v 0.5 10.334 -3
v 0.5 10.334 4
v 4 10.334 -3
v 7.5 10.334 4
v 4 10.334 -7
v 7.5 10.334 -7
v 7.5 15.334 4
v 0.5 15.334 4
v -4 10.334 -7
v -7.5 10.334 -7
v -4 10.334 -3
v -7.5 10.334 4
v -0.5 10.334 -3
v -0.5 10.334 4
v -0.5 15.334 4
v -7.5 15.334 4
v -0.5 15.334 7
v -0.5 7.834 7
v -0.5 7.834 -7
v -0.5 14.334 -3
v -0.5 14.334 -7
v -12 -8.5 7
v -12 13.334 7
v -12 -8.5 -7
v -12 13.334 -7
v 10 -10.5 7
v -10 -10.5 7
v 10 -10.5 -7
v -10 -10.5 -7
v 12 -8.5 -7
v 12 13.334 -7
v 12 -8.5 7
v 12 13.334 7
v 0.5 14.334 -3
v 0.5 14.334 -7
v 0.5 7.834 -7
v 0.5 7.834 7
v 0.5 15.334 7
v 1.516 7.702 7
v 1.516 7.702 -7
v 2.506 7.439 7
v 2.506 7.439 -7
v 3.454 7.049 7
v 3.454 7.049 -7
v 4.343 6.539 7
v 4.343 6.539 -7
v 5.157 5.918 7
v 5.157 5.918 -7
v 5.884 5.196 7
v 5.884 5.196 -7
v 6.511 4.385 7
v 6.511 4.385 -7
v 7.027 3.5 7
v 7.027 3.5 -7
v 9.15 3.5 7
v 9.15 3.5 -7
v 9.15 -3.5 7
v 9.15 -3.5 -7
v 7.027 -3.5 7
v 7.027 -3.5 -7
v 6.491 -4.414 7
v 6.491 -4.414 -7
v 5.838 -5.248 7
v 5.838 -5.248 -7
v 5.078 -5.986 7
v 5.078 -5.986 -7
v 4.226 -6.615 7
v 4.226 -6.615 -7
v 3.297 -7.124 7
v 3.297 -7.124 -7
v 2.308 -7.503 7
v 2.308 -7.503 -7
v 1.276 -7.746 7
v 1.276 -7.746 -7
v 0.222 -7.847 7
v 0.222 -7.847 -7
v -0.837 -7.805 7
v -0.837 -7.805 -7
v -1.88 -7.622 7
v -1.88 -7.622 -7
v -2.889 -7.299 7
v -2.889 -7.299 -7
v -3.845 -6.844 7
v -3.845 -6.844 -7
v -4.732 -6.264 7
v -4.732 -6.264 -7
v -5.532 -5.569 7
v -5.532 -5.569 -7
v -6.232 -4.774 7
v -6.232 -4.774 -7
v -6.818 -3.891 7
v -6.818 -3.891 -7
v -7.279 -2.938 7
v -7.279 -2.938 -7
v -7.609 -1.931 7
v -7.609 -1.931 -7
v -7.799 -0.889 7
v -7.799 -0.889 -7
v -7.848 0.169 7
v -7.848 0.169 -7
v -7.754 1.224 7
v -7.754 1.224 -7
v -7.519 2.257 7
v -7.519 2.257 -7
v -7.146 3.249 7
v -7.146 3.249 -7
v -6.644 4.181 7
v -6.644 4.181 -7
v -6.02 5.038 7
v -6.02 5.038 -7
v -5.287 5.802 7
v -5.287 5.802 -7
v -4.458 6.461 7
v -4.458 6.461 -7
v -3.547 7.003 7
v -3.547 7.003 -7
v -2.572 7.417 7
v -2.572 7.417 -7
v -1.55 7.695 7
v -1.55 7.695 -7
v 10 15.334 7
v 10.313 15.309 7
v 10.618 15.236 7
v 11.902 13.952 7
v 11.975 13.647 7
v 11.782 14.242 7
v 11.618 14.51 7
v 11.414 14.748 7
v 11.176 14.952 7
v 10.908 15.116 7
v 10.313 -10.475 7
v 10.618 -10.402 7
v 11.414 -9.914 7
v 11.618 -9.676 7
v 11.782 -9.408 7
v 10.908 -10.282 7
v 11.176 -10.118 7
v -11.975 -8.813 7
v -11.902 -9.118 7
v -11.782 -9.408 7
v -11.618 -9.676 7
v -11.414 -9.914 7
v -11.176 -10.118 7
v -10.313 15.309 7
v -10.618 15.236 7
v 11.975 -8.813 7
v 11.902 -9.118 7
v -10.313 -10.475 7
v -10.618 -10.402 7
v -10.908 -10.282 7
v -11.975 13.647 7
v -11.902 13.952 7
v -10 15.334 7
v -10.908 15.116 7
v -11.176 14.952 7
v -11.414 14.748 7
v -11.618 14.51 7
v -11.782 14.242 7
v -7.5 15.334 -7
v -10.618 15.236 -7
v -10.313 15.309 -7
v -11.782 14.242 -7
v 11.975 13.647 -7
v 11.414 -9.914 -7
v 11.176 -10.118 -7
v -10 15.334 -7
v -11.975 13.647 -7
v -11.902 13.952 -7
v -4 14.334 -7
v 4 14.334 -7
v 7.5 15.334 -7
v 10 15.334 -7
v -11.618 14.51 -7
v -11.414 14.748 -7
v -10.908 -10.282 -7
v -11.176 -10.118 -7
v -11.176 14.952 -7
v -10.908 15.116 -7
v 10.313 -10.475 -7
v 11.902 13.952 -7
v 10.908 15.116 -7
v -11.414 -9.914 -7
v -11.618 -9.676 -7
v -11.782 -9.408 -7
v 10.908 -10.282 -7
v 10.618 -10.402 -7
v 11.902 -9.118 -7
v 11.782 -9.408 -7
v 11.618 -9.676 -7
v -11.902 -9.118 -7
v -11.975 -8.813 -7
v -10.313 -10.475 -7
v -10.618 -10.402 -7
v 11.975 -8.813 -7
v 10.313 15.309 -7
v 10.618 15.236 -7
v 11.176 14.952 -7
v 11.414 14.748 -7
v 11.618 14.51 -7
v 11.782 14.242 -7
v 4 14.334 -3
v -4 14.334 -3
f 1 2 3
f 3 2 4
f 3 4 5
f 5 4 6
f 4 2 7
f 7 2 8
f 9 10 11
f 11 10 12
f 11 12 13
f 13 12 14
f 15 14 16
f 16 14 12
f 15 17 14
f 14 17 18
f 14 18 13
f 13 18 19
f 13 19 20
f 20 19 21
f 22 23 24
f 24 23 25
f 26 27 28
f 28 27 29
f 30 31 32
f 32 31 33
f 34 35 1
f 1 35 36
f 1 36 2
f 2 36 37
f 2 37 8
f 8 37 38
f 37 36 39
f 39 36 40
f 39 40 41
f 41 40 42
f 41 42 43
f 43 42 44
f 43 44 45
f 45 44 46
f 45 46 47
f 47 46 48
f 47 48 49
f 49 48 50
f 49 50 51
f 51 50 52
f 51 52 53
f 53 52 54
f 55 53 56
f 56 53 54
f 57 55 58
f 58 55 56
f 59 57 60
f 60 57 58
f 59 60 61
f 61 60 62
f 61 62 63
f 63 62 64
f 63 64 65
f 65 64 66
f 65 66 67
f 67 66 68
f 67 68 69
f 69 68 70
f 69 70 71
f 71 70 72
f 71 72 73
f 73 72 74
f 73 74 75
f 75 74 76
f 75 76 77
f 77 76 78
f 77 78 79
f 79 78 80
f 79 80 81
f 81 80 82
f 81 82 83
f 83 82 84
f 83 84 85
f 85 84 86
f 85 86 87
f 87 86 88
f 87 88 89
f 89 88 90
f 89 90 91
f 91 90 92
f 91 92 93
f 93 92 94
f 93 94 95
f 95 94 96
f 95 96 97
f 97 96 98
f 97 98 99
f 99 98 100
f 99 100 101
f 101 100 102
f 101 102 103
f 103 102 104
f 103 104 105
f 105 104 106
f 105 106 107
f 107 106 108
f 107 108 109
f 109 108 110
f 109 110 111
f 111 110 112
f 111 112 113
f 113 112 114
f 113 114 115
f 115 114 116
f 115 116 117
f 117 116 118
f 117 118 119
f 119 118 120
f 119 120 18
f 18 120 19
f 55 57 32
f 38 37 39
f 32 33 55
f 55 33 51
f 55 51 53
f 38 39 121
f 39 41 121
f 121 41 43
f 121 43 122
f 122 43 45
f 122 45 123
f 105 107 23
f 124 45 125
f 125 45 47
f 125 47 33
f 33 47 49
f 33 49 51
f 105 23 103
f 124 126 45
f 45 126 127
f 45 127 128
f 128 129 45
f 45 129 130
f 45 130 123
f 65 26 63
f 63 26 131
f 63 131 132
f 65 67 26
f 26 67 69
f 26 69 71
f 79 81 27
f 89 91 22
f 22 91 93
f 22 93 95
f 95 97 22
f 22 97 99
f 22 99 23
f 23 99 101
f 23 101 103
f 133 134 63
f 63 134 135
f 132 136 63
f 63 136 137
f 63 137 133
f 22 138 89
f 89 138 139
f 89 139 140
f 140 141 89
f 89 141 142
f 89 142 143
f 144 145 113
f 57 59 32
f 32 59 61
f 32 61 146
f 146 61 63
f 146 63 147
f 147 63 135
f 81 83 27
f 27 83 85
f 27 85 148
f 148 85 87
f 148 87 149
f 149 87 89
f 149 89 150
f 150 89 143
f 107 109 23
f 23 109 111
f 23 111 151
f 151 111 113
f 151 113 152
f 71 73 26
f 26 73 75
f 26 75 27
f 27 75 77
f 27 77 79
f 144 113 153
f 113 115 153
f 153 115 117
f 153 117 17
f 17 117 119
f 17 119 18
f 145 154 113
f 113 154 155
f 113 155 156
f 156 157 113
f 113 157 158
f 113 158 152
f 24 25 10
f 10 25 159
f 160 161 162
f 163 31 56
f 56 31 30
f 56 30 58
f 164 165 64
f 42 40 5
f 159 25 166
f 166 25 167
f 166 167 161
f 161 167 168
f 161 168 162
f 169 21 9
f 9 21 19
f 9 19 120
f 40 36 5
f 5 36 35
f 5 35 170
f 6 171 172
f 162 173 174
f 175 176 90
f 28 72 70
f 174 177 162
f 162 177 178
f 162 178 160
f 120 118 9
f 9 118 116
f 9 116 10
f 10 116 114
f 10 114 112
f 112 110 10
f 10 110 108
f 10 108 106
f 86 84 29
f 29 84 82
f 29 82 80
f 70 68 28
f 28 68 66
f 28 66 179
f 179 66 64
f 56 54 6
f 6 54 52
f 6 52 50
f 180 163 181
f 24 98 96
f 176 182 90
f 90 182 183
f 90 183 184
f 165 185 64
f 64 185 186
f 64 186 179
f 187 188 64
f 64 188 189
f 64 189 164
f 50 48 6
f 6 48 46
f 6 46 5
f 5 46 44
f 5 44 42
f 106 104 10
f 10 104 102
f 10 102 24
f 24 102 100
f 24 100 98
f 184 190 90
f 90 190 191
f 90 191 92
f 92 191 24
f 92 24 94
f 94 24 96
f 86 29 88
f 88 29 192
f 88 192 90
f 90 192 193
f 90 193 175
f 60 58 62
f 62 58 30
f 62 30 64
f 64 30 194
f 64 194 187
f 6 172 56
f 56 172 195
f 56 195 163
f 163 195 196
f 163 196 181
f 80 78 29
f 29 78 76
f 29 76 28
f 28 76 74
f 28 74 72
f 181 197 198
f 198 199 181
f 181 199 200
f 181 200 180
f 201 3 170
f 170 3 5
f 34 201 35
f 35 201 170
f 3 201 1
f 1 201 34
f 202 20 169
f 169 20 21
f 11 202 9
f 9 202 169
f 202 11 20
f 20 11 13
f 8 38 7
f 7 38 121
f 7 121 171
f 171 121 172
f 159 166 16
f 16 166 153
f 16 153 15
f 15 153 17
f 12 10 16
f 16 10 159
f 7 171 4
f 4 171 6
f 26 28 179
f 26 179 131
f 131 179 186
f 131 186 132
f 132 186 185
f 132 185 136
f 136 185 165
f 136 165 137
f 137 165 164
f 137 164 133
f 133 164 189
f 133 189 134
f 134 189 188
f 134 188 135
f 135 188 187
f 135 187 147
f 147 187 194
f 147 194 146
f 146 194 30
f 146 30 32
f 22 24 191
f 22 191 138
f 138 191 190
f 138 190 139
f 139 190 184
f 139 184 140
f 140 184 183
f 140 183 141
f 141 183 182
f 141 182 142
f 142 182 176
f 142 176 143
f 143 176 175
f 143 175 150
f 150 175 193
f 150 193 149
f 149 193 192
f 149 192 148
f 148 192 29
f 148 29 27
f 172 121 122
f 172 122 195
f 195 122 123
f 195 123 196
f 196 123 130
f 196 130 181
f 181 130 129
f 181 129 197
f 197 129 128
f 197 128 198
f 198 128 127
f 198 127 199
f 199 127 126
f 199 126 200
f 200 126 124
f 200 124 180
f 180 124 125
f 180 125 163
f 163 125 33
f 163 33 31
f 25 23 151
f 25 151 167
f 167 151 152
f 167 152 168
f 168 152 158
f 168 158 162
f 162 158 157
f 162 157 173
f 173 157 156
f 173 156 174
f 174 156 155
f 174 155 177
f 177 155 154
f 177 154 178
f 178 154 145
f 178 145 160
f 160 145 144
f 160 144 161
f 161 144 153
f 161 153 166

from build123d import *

# Parameters (mm, degrees)
SALIENTE_EXTRUIR1_DEPTH = 7
CROQUIS2_W              = 3.5
CROQUIS2_H              = 4
SALIENTE_EXTRUIR2_DEPTH = 4
CROQUIS3_W              = 11.5
CROQUIS3_H              = 5
SALIENTE_EXTRUIR3_DEPTH = 3
SALIENTE_EXTRUIR4_START = -7
CROQUIS4_W              = 4.5
CROQUIS4_H              = 5
SALIENTE_EXTRUIR4_DEPTH = 11
REDONDEO3_R             = 2


with BuildPart() as part:
    # Croquis1 → Saliente-Extruir1 (new, symmetric)
    with BuildSketch(Plane.XY):
        with BuildLine():
            Line((-12, -10.5), (12, -10.5))
            Line((12, -10.5), (12, 10.33406025))
            Line((12, 10.33406025), (0.5, 10.33406025))
            Line((0.5, 10.33406025), (0.5, 7.83406025))
            ThreePointArc((0.5, 7.83406025), (4.342612549, 6.539435468), (7.026556767, 3.5))
            Line((7.026556767, 3.5), (9.15, 3.5))
            Line((9.15, 3.5), (9.15, -3.5))
            Line((9.15, -3.5), (7.026556767, -3.5))
            ThreePointArc((7.026556767, -3.5), (-6.539435468, -4.342612549), (-0.5, 7.83406025))
            Line((-0.5, 7.83406025), (-0.5, 10.33406025))
            Line((-0.5, 10.33406025), (-12, 10.33406025))
            Line((-12, 10.33406025), (-12, -10.5))
        make_face()
    extrude(amount=SALIENTE_EXTRUIR1_DEPTH, both=True)

    # Croquis2 → Saliente-Extruir2 (add)
    with BuildSketch(Plane.XY.offset(-7)):
        with Locations((2.25, 12.33406025)):
            Rectangle(CROQUIS2_W, CROQUIS2_H)
        with Locations((-2.25, 12.33406025)):
            Rectangle(CROQUIS2_W, CROQUIS2_H)
    extrude(amount=SALIENTE_EXTRUIR2_DEPTH)

    # Croquis3 → Saliente-Extruir3 (add)
    with BuildSketch(Plane(origin=(0, 0, 7), x_dir=(-1, 0, 0), z_dir=(0, 0, -1))):
        with Locations((-6.25, 12.83406025)):
            Rectangle(CROQUIS3_W, CROQUIS3_H)
        with Locations((6.25, 12.83406025)):
            Rectangle(CROQUIS3_W, CROQUIS3_H)
    extrude(amount=SALIENTE_EXTRUIR3_DEPTH)

    # Croquis4 → Saliente-Extruir4 (add)
    with BuildSketch(Plane.XY.offset(SALIENTE_EXTRUIR4_START)):
        with Locations((-9.75, 12.83406025)):
            Rectangle(CROQUIS4_W, CROQUIS4_H)
        with Locations((9.75, 12.83406025)):
            Rectangle(CROQUIS4_W, CROQUIS4_H)
    extrude(amount=SALIENTE_EXTRUIR4_DEPTH)

    # Redondeo3
    redondeo3_edges = [part.edges().sort_by_distance(p)[0] for p in [
        (12, -10.5, 0),
        (-12, -10.5, 0),
        (12, 15.33406025, 0),
        (-12, 15.33406025, 0),
    ]]
    fillet(redondeo3_edges, radius=REDONDEO3_R)


solid = part.part
